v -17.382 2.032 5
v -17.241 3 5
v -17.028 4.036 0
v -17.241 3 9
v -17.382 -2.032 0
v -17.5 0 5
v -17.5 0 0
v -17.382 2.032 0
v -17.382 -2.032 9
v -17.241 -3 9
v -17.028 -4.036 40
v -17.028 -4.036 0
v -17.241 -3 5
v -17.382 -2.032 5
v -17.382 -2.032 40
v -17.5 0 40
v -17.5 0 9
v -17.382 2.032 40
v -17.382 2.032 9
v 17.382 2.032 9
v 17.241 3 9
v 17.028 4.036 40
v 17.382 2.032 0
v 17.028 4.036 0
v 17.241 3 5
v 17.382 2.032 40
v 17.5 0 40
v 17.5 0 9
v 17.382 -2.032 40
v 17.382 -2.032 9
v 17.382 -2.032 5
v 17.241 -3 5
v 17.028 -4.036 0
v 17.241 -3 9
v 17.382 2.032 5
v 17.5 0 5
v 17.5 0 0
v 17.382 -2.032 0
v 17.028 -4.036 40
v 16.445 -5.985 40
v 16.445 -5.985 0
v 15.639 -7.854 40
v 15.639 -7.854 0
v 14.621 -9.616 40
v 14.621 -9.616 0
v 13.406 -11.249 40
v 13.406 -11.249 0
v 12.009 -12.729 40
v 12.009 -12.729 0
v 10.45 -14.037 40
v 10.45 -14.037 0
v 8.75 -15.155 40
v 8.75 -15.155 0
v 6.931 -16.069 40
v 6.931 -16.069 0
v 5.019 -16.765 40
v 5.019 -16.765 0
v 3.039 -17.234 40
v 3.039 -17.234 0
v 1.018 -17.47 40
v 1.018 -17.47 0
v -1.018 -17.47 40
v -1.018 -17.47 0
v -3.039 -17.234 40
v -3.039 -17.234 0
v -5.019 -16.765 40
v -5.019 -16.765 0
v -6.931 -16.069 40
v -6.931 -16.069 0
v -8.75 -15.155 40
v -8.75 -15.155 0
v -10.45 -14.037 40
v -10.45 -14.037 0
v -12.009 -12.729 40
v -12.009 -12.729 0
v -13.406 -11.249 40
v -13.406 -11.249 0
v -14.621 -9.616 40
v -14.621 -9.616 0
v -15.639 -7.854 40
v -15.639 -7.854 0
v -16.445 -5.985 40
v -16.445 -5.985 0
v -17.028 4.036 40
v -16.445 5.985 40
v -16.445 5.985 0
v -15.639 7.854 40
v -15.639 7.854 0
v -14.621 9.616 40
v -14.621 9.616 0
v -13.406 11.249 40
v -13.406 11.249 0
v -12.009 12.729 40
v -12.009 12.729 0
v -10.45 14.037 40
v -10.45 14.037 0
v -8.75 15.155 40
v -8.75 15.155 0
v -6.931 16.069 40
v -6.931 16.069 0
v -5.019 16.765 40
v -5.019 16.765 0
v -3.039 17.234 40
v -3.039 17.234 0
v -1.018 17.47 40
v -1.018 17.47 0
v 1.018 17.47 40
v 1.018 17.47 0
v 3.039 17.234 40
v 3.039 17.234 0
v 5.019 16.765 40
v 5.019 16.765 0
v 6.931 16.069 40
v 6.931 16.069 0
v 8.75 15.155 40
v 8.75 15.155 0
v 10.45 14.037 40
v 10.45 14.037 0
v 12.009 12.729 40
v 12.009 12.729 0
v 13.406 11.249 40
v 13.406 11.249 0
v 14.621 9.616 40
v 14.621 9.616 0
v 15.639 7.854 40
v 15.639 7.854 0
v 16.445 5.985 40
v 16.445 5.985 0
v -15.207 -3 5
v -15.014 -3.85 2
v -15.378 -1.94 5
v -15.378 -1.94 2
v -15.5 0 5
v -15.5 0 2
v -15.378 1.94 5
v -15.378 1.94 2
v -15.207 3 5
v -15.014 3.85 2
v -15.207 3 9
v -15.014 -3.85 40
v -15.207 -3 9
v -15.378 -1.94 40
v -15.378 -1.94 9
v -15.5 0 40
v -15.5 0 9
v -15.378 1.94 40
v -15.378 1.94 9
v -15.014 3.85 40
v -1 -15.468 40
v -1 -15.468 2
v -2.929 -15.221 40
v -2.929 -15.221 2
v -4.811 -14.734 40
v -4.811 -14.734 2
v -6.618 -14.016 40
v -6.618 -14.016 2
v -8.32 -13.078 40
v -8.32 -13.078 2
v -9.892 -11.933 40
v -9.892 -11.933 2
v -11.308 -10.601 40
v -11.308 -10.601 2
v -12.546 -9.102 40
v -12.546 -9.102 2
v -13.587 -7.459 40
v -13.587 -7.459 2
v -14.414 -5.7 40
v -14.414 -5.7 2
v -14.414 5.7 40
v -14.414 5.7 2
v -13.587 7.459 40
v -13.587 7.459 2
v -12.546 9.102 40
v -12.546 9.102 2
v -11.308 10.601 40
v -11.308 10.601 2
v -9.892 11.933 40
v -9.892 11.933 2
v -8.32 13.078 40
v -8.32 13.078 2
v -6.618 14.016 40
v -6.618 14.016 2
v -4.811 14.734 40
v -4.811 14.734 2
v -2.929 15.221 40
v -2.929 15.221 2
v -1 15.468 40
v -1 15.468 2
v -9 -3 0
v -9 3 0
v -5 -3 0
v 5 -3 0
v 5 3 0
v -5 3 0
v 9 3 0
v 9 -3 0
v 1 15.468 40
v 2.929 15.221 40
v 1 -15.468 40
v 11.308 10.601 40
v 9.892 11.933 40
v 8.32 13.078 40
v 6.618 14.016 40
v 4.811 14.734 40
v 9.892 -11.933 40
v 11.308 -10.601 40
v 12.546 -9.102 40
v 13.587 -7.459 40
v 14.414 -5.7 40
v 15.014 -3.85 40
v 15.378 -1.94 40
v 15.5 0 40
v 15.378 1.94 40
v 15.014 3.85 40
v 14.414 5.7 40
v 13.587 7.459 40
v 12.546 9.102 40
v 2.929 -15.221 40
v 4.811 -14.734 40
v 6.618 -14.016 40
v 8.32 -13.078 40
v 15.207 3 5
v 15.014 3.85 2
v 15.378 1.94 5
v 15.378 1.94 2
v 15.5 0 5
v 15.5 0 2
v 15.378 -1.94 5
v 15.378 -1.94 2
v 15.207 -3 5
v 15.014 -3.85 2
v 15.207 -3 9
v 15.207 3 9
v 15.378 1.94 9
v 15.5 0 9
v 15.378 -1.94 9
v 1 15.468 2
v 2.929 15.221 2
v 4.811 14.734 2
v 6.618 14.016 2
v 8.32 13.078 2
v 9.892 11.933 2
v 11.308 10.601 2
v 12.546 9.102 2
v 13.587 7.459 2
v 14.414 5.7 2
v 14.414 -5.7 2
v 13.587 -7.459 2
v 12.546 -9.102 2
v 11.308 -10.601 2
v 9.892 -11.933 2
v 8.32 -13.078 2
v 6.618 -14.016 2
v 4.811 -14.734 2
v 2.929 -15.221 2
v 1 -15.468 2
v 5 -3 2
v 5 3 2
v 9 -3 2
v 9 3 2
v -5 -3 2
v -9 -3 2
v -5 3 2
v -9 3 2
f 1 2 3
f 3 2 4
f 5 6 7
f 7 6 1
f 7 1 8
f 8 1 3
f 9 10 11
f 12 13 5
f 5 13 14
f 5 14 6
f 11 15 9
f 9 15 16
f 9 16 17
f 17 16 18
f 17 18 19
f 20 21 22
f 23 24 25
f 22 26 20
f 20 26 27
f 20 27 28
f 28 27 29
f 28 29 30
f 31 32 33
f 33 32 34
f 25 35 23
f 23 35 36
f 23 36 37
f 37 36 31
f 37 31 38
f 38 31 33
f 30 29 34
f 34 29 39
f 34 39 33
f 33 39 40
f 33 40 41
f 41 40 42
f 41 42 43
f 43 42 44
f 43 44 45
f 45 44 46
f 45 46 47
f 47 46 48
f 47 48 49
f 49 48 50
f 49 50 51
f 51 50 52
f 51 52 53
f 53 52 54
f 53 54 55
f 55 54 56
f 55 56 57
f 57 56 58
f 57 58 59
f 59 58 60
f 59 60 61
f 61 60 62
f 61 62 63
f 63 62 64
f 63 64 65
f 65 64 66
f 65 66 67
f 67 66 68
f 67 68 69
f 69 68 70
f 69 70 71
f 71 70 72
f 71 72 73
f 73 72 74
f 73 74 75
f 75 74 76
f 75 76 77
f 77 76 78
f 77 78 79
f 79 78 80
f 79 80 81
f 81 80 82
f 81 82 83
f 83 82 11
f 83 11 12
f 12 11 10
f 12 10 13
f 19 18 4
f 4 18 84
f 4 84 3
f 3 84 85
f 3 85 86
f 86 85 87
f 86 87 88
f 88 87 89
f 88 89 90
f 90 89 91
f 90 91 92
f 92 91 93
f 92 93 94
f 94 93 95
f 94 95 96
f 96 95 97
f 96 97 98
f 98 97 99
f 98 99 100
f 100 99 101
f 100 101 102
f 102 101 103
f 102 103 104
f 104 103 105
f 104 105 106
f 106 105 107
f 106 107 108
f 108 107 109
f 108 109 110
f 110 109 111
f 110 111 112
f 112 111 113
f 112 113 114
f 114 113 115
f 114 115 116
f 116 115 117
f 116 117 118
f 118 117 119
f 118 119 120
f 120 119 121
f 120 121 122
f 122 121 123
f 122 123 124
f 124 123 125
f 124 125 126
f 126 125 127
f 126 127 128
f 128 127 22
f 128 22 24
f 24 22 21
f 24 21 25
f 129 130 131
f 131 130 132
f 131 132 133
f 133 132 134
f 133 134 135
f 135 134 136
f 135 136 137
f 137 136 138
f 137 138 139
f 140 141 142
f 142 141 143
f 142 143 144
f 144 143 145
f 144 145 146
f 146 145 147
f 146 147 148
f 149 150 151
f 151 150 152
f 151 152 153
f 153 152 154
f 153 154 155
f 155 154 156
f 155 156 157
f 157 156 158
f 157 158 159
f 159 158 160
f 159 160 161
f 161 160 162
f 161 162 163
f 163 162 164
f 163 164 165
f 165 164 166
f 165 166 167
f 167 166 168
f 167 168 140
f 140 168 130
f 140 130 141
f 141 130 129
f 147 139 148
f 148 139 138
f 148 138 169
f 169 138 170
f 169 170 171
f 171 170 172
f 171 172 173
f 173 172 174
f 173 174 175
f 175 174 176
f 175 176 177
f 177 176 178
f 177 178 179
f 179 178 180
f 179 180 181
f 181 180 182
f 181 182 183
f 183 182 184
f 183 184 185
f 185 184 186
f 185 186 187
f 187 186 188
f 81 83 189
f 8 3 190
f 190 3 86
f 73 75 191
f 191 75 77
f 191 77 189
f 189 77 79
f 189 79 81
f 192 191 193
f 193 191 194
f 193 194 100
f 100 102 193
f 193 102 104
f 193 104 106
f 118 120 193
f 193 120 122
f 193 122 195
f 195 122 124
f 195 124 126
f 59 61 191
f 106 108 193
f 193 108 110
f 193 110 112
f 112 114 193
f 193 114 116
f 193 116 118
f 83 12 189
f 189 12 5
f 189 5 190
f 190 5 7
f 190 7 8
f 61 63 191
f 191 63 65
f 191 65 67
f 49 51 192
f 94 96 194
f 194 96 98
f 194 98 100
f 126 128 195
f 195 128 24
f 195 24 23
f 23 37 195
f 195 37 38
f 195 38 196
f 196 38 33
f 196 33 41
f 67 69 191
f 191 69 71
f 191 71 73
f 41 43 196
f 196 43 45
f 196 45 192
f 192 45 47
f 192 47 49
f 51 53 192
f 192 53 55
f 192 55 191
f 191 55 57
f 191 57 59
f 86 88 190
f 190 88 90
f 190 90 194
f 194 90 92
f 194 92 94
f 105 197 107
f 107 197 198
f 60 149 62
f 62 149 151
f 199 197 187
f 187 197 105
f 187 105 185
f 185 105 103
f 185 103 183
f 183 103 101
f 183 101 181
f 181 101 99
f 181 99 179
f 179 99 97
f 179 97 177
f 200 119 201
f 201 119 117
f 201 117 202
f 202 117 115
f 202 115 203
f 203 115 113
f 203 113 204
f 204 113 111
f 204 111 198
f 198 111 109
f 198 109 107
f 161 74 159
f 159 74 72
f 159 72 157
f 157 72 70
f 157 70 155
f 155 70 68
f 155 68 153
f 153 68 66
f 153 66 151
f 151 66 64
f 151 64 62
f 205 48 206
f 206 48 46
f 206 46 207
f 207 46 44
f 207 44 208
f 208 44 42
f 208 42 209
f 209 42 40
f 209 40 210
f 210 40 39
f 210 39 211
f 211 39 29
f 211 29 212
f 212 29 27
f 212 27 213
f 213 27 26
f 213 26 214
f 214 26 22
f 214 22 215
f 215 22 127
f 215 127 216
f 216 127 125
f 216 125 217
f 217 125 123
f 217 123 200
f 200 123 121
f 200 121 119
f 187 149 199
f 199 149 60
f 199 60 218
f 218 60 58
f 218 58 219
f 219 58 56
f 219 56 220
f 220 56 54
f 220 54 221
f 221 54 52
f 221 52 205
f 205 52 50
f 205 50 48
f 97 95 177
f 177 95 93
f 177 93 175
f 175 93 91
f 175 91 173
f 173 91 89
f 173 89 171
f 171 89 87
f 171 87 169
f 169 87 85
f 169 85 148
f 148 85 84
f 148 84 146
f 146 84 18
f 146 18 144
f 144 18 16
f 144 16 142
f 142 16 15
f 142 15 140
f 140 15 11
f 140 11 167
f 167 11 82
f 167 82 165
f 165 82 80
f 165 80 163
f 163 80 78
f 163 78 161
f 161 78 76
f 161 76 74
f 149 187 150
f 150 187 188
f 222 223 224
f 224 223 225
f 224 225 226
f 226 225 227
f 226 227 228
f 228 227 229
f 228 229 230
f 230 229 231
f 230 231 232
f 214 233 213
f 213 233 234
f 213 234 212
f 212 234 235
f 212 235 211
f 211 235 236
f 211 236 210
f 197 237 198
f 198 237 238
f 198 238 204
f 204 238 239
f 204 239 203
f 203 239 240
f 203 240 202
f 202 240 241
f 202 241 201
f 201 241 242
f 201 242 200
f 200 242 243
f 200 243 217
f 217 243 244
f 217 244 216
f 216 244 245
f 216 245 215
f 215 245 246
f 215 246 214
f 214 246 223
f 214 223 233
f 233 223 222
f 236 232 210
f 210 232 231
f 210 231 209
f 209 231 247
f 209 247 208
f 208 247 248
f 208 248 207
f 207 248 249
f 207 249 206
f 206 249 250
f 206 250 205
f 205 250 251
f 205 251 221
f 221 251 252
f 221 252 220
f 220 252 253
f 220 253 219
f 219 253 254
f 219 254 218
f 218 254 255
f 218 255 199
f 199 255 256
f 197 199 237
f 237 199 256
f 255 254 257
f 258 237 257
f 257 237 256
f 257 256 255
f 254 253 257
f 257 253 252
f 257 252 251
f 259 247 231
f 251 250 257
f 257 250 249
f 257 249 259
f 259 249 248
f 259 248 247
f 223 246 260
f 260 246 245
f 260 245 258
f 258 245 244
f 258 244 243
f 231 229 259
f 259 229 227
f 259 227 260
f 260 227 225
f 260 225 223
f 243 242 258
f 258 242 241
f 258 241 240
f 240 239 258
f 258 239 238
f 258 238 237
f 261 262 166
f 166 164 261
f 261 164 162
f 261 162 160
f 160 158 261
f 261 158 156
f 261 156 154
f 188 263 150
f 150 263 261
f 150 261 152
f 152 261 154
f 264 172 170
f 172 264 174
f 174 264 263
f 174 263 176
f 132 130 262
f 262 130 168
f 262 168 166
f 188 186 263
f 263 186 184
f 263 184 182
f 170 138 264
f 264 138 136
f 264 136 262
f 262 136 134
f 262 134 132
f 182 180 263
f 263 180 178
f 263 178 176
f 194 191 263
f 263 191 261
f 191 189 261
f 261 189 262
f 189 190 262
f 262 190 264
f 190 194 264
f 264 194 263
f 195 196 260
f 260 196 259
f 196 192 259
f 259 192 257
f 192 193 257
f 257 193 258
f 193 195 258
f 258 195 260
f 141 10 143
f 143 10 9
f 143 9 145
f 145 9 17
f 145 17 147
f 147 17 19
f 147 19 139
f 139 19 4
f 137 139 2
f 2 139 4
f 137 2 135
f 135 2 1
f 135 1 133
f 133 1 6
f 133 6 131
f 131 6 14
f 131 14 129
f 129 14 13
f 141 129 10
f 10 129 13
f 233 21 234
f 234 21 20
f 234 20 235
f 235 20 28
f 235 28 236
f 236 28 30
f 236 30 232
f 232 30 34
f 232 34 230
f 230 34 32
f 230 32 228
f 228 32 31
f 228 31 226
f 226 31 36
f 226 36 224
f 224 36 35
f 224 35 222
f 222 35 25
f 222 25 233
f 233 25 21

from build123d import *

# Parameters (mm, degrees)
SKETCH1_R           = 17.5
BOSS_EXTRUDE1_DEPTH = 2
SKETCH2_R           = 17.5
BOSS_EXTRUDE2_DEPTH = 38
SKETCH3_W           = 4
SKETCH3_H           = 6
CUT_EXTRUDE1_DEPTH  = 46.348649373
SKETCH4_W           = 4
SKETCH4_H           = 6
CUT_EXTRUDE2_DEPTH  = 48.418350878


with BuildPart() as part:
    # Sketch1 → Boss-Extrude1 (new body)
    with BuildSketch(Plane.XY):
        Circle(SKETCH1_R)
    extrude(amount=BOSS_EXTRUDE1_DEPTH)

    # Sketch2 → Boss-Extrude2 (add)
    with BuildSketch(Plane.XY.offset(2)):
        Circle(SKETCH2_R)
        with BuildLine():
            Line((-1, 15.467708298), (-1, -15.467708298))
            ThreePointArc((-1, -15.467708298), (-15.5, 0), (-1, 15.467708298))
        make_face(mode=Mode.SUBTRACT)
        with BuildLine():
            Line((1, 15.467708298), (1, -15.467708298))
            ThreePointArc((1, -15.467708298), (15.5, 0), (1, 15.467708298))
        make_face(mode=Mode.SUBTRACT)
    extrude(amount=BOSS_EXTRUDE2_DEPTH)

    # Sketch3 → Cut-Extrude1 (cut, through all)
    with BuildSketch(Plane.XY.offset(2)):
        with Locations((7, 0)):
            Rectangle(SKETCH3_W, SKETCH3_H)
        with Locations((-7, 0)):
            Rectangle(SKETCH3_W, SKETCH3_H)
    extrude(amount=-CUT_EXTRUDE1_DEPTH, mode=Mode.SUBTRACT)

    # Sketch4 → Cut-Extrude2 (cut, through all)
    with BuildSketch(Plane.ZY.offset(1)):
        with Locations((7, 0)):
            Rectangle(SKETCH4_W, SKETCH4_H)
    cut_extrude2 = extrude(amount=CUT_EXTRUDE2_DEPTH, mode=Mode.SUBTRACT)

    # Mirror1: Cut-Extrude2 across plane
    add(cut_extrude2.mirror(Plane(origin=(0, 0, 0), x_dir=(0, 0, 1), z_dir=(1, 0, 0))), mode=Mode.SUBTRACT)


solid = part.part
